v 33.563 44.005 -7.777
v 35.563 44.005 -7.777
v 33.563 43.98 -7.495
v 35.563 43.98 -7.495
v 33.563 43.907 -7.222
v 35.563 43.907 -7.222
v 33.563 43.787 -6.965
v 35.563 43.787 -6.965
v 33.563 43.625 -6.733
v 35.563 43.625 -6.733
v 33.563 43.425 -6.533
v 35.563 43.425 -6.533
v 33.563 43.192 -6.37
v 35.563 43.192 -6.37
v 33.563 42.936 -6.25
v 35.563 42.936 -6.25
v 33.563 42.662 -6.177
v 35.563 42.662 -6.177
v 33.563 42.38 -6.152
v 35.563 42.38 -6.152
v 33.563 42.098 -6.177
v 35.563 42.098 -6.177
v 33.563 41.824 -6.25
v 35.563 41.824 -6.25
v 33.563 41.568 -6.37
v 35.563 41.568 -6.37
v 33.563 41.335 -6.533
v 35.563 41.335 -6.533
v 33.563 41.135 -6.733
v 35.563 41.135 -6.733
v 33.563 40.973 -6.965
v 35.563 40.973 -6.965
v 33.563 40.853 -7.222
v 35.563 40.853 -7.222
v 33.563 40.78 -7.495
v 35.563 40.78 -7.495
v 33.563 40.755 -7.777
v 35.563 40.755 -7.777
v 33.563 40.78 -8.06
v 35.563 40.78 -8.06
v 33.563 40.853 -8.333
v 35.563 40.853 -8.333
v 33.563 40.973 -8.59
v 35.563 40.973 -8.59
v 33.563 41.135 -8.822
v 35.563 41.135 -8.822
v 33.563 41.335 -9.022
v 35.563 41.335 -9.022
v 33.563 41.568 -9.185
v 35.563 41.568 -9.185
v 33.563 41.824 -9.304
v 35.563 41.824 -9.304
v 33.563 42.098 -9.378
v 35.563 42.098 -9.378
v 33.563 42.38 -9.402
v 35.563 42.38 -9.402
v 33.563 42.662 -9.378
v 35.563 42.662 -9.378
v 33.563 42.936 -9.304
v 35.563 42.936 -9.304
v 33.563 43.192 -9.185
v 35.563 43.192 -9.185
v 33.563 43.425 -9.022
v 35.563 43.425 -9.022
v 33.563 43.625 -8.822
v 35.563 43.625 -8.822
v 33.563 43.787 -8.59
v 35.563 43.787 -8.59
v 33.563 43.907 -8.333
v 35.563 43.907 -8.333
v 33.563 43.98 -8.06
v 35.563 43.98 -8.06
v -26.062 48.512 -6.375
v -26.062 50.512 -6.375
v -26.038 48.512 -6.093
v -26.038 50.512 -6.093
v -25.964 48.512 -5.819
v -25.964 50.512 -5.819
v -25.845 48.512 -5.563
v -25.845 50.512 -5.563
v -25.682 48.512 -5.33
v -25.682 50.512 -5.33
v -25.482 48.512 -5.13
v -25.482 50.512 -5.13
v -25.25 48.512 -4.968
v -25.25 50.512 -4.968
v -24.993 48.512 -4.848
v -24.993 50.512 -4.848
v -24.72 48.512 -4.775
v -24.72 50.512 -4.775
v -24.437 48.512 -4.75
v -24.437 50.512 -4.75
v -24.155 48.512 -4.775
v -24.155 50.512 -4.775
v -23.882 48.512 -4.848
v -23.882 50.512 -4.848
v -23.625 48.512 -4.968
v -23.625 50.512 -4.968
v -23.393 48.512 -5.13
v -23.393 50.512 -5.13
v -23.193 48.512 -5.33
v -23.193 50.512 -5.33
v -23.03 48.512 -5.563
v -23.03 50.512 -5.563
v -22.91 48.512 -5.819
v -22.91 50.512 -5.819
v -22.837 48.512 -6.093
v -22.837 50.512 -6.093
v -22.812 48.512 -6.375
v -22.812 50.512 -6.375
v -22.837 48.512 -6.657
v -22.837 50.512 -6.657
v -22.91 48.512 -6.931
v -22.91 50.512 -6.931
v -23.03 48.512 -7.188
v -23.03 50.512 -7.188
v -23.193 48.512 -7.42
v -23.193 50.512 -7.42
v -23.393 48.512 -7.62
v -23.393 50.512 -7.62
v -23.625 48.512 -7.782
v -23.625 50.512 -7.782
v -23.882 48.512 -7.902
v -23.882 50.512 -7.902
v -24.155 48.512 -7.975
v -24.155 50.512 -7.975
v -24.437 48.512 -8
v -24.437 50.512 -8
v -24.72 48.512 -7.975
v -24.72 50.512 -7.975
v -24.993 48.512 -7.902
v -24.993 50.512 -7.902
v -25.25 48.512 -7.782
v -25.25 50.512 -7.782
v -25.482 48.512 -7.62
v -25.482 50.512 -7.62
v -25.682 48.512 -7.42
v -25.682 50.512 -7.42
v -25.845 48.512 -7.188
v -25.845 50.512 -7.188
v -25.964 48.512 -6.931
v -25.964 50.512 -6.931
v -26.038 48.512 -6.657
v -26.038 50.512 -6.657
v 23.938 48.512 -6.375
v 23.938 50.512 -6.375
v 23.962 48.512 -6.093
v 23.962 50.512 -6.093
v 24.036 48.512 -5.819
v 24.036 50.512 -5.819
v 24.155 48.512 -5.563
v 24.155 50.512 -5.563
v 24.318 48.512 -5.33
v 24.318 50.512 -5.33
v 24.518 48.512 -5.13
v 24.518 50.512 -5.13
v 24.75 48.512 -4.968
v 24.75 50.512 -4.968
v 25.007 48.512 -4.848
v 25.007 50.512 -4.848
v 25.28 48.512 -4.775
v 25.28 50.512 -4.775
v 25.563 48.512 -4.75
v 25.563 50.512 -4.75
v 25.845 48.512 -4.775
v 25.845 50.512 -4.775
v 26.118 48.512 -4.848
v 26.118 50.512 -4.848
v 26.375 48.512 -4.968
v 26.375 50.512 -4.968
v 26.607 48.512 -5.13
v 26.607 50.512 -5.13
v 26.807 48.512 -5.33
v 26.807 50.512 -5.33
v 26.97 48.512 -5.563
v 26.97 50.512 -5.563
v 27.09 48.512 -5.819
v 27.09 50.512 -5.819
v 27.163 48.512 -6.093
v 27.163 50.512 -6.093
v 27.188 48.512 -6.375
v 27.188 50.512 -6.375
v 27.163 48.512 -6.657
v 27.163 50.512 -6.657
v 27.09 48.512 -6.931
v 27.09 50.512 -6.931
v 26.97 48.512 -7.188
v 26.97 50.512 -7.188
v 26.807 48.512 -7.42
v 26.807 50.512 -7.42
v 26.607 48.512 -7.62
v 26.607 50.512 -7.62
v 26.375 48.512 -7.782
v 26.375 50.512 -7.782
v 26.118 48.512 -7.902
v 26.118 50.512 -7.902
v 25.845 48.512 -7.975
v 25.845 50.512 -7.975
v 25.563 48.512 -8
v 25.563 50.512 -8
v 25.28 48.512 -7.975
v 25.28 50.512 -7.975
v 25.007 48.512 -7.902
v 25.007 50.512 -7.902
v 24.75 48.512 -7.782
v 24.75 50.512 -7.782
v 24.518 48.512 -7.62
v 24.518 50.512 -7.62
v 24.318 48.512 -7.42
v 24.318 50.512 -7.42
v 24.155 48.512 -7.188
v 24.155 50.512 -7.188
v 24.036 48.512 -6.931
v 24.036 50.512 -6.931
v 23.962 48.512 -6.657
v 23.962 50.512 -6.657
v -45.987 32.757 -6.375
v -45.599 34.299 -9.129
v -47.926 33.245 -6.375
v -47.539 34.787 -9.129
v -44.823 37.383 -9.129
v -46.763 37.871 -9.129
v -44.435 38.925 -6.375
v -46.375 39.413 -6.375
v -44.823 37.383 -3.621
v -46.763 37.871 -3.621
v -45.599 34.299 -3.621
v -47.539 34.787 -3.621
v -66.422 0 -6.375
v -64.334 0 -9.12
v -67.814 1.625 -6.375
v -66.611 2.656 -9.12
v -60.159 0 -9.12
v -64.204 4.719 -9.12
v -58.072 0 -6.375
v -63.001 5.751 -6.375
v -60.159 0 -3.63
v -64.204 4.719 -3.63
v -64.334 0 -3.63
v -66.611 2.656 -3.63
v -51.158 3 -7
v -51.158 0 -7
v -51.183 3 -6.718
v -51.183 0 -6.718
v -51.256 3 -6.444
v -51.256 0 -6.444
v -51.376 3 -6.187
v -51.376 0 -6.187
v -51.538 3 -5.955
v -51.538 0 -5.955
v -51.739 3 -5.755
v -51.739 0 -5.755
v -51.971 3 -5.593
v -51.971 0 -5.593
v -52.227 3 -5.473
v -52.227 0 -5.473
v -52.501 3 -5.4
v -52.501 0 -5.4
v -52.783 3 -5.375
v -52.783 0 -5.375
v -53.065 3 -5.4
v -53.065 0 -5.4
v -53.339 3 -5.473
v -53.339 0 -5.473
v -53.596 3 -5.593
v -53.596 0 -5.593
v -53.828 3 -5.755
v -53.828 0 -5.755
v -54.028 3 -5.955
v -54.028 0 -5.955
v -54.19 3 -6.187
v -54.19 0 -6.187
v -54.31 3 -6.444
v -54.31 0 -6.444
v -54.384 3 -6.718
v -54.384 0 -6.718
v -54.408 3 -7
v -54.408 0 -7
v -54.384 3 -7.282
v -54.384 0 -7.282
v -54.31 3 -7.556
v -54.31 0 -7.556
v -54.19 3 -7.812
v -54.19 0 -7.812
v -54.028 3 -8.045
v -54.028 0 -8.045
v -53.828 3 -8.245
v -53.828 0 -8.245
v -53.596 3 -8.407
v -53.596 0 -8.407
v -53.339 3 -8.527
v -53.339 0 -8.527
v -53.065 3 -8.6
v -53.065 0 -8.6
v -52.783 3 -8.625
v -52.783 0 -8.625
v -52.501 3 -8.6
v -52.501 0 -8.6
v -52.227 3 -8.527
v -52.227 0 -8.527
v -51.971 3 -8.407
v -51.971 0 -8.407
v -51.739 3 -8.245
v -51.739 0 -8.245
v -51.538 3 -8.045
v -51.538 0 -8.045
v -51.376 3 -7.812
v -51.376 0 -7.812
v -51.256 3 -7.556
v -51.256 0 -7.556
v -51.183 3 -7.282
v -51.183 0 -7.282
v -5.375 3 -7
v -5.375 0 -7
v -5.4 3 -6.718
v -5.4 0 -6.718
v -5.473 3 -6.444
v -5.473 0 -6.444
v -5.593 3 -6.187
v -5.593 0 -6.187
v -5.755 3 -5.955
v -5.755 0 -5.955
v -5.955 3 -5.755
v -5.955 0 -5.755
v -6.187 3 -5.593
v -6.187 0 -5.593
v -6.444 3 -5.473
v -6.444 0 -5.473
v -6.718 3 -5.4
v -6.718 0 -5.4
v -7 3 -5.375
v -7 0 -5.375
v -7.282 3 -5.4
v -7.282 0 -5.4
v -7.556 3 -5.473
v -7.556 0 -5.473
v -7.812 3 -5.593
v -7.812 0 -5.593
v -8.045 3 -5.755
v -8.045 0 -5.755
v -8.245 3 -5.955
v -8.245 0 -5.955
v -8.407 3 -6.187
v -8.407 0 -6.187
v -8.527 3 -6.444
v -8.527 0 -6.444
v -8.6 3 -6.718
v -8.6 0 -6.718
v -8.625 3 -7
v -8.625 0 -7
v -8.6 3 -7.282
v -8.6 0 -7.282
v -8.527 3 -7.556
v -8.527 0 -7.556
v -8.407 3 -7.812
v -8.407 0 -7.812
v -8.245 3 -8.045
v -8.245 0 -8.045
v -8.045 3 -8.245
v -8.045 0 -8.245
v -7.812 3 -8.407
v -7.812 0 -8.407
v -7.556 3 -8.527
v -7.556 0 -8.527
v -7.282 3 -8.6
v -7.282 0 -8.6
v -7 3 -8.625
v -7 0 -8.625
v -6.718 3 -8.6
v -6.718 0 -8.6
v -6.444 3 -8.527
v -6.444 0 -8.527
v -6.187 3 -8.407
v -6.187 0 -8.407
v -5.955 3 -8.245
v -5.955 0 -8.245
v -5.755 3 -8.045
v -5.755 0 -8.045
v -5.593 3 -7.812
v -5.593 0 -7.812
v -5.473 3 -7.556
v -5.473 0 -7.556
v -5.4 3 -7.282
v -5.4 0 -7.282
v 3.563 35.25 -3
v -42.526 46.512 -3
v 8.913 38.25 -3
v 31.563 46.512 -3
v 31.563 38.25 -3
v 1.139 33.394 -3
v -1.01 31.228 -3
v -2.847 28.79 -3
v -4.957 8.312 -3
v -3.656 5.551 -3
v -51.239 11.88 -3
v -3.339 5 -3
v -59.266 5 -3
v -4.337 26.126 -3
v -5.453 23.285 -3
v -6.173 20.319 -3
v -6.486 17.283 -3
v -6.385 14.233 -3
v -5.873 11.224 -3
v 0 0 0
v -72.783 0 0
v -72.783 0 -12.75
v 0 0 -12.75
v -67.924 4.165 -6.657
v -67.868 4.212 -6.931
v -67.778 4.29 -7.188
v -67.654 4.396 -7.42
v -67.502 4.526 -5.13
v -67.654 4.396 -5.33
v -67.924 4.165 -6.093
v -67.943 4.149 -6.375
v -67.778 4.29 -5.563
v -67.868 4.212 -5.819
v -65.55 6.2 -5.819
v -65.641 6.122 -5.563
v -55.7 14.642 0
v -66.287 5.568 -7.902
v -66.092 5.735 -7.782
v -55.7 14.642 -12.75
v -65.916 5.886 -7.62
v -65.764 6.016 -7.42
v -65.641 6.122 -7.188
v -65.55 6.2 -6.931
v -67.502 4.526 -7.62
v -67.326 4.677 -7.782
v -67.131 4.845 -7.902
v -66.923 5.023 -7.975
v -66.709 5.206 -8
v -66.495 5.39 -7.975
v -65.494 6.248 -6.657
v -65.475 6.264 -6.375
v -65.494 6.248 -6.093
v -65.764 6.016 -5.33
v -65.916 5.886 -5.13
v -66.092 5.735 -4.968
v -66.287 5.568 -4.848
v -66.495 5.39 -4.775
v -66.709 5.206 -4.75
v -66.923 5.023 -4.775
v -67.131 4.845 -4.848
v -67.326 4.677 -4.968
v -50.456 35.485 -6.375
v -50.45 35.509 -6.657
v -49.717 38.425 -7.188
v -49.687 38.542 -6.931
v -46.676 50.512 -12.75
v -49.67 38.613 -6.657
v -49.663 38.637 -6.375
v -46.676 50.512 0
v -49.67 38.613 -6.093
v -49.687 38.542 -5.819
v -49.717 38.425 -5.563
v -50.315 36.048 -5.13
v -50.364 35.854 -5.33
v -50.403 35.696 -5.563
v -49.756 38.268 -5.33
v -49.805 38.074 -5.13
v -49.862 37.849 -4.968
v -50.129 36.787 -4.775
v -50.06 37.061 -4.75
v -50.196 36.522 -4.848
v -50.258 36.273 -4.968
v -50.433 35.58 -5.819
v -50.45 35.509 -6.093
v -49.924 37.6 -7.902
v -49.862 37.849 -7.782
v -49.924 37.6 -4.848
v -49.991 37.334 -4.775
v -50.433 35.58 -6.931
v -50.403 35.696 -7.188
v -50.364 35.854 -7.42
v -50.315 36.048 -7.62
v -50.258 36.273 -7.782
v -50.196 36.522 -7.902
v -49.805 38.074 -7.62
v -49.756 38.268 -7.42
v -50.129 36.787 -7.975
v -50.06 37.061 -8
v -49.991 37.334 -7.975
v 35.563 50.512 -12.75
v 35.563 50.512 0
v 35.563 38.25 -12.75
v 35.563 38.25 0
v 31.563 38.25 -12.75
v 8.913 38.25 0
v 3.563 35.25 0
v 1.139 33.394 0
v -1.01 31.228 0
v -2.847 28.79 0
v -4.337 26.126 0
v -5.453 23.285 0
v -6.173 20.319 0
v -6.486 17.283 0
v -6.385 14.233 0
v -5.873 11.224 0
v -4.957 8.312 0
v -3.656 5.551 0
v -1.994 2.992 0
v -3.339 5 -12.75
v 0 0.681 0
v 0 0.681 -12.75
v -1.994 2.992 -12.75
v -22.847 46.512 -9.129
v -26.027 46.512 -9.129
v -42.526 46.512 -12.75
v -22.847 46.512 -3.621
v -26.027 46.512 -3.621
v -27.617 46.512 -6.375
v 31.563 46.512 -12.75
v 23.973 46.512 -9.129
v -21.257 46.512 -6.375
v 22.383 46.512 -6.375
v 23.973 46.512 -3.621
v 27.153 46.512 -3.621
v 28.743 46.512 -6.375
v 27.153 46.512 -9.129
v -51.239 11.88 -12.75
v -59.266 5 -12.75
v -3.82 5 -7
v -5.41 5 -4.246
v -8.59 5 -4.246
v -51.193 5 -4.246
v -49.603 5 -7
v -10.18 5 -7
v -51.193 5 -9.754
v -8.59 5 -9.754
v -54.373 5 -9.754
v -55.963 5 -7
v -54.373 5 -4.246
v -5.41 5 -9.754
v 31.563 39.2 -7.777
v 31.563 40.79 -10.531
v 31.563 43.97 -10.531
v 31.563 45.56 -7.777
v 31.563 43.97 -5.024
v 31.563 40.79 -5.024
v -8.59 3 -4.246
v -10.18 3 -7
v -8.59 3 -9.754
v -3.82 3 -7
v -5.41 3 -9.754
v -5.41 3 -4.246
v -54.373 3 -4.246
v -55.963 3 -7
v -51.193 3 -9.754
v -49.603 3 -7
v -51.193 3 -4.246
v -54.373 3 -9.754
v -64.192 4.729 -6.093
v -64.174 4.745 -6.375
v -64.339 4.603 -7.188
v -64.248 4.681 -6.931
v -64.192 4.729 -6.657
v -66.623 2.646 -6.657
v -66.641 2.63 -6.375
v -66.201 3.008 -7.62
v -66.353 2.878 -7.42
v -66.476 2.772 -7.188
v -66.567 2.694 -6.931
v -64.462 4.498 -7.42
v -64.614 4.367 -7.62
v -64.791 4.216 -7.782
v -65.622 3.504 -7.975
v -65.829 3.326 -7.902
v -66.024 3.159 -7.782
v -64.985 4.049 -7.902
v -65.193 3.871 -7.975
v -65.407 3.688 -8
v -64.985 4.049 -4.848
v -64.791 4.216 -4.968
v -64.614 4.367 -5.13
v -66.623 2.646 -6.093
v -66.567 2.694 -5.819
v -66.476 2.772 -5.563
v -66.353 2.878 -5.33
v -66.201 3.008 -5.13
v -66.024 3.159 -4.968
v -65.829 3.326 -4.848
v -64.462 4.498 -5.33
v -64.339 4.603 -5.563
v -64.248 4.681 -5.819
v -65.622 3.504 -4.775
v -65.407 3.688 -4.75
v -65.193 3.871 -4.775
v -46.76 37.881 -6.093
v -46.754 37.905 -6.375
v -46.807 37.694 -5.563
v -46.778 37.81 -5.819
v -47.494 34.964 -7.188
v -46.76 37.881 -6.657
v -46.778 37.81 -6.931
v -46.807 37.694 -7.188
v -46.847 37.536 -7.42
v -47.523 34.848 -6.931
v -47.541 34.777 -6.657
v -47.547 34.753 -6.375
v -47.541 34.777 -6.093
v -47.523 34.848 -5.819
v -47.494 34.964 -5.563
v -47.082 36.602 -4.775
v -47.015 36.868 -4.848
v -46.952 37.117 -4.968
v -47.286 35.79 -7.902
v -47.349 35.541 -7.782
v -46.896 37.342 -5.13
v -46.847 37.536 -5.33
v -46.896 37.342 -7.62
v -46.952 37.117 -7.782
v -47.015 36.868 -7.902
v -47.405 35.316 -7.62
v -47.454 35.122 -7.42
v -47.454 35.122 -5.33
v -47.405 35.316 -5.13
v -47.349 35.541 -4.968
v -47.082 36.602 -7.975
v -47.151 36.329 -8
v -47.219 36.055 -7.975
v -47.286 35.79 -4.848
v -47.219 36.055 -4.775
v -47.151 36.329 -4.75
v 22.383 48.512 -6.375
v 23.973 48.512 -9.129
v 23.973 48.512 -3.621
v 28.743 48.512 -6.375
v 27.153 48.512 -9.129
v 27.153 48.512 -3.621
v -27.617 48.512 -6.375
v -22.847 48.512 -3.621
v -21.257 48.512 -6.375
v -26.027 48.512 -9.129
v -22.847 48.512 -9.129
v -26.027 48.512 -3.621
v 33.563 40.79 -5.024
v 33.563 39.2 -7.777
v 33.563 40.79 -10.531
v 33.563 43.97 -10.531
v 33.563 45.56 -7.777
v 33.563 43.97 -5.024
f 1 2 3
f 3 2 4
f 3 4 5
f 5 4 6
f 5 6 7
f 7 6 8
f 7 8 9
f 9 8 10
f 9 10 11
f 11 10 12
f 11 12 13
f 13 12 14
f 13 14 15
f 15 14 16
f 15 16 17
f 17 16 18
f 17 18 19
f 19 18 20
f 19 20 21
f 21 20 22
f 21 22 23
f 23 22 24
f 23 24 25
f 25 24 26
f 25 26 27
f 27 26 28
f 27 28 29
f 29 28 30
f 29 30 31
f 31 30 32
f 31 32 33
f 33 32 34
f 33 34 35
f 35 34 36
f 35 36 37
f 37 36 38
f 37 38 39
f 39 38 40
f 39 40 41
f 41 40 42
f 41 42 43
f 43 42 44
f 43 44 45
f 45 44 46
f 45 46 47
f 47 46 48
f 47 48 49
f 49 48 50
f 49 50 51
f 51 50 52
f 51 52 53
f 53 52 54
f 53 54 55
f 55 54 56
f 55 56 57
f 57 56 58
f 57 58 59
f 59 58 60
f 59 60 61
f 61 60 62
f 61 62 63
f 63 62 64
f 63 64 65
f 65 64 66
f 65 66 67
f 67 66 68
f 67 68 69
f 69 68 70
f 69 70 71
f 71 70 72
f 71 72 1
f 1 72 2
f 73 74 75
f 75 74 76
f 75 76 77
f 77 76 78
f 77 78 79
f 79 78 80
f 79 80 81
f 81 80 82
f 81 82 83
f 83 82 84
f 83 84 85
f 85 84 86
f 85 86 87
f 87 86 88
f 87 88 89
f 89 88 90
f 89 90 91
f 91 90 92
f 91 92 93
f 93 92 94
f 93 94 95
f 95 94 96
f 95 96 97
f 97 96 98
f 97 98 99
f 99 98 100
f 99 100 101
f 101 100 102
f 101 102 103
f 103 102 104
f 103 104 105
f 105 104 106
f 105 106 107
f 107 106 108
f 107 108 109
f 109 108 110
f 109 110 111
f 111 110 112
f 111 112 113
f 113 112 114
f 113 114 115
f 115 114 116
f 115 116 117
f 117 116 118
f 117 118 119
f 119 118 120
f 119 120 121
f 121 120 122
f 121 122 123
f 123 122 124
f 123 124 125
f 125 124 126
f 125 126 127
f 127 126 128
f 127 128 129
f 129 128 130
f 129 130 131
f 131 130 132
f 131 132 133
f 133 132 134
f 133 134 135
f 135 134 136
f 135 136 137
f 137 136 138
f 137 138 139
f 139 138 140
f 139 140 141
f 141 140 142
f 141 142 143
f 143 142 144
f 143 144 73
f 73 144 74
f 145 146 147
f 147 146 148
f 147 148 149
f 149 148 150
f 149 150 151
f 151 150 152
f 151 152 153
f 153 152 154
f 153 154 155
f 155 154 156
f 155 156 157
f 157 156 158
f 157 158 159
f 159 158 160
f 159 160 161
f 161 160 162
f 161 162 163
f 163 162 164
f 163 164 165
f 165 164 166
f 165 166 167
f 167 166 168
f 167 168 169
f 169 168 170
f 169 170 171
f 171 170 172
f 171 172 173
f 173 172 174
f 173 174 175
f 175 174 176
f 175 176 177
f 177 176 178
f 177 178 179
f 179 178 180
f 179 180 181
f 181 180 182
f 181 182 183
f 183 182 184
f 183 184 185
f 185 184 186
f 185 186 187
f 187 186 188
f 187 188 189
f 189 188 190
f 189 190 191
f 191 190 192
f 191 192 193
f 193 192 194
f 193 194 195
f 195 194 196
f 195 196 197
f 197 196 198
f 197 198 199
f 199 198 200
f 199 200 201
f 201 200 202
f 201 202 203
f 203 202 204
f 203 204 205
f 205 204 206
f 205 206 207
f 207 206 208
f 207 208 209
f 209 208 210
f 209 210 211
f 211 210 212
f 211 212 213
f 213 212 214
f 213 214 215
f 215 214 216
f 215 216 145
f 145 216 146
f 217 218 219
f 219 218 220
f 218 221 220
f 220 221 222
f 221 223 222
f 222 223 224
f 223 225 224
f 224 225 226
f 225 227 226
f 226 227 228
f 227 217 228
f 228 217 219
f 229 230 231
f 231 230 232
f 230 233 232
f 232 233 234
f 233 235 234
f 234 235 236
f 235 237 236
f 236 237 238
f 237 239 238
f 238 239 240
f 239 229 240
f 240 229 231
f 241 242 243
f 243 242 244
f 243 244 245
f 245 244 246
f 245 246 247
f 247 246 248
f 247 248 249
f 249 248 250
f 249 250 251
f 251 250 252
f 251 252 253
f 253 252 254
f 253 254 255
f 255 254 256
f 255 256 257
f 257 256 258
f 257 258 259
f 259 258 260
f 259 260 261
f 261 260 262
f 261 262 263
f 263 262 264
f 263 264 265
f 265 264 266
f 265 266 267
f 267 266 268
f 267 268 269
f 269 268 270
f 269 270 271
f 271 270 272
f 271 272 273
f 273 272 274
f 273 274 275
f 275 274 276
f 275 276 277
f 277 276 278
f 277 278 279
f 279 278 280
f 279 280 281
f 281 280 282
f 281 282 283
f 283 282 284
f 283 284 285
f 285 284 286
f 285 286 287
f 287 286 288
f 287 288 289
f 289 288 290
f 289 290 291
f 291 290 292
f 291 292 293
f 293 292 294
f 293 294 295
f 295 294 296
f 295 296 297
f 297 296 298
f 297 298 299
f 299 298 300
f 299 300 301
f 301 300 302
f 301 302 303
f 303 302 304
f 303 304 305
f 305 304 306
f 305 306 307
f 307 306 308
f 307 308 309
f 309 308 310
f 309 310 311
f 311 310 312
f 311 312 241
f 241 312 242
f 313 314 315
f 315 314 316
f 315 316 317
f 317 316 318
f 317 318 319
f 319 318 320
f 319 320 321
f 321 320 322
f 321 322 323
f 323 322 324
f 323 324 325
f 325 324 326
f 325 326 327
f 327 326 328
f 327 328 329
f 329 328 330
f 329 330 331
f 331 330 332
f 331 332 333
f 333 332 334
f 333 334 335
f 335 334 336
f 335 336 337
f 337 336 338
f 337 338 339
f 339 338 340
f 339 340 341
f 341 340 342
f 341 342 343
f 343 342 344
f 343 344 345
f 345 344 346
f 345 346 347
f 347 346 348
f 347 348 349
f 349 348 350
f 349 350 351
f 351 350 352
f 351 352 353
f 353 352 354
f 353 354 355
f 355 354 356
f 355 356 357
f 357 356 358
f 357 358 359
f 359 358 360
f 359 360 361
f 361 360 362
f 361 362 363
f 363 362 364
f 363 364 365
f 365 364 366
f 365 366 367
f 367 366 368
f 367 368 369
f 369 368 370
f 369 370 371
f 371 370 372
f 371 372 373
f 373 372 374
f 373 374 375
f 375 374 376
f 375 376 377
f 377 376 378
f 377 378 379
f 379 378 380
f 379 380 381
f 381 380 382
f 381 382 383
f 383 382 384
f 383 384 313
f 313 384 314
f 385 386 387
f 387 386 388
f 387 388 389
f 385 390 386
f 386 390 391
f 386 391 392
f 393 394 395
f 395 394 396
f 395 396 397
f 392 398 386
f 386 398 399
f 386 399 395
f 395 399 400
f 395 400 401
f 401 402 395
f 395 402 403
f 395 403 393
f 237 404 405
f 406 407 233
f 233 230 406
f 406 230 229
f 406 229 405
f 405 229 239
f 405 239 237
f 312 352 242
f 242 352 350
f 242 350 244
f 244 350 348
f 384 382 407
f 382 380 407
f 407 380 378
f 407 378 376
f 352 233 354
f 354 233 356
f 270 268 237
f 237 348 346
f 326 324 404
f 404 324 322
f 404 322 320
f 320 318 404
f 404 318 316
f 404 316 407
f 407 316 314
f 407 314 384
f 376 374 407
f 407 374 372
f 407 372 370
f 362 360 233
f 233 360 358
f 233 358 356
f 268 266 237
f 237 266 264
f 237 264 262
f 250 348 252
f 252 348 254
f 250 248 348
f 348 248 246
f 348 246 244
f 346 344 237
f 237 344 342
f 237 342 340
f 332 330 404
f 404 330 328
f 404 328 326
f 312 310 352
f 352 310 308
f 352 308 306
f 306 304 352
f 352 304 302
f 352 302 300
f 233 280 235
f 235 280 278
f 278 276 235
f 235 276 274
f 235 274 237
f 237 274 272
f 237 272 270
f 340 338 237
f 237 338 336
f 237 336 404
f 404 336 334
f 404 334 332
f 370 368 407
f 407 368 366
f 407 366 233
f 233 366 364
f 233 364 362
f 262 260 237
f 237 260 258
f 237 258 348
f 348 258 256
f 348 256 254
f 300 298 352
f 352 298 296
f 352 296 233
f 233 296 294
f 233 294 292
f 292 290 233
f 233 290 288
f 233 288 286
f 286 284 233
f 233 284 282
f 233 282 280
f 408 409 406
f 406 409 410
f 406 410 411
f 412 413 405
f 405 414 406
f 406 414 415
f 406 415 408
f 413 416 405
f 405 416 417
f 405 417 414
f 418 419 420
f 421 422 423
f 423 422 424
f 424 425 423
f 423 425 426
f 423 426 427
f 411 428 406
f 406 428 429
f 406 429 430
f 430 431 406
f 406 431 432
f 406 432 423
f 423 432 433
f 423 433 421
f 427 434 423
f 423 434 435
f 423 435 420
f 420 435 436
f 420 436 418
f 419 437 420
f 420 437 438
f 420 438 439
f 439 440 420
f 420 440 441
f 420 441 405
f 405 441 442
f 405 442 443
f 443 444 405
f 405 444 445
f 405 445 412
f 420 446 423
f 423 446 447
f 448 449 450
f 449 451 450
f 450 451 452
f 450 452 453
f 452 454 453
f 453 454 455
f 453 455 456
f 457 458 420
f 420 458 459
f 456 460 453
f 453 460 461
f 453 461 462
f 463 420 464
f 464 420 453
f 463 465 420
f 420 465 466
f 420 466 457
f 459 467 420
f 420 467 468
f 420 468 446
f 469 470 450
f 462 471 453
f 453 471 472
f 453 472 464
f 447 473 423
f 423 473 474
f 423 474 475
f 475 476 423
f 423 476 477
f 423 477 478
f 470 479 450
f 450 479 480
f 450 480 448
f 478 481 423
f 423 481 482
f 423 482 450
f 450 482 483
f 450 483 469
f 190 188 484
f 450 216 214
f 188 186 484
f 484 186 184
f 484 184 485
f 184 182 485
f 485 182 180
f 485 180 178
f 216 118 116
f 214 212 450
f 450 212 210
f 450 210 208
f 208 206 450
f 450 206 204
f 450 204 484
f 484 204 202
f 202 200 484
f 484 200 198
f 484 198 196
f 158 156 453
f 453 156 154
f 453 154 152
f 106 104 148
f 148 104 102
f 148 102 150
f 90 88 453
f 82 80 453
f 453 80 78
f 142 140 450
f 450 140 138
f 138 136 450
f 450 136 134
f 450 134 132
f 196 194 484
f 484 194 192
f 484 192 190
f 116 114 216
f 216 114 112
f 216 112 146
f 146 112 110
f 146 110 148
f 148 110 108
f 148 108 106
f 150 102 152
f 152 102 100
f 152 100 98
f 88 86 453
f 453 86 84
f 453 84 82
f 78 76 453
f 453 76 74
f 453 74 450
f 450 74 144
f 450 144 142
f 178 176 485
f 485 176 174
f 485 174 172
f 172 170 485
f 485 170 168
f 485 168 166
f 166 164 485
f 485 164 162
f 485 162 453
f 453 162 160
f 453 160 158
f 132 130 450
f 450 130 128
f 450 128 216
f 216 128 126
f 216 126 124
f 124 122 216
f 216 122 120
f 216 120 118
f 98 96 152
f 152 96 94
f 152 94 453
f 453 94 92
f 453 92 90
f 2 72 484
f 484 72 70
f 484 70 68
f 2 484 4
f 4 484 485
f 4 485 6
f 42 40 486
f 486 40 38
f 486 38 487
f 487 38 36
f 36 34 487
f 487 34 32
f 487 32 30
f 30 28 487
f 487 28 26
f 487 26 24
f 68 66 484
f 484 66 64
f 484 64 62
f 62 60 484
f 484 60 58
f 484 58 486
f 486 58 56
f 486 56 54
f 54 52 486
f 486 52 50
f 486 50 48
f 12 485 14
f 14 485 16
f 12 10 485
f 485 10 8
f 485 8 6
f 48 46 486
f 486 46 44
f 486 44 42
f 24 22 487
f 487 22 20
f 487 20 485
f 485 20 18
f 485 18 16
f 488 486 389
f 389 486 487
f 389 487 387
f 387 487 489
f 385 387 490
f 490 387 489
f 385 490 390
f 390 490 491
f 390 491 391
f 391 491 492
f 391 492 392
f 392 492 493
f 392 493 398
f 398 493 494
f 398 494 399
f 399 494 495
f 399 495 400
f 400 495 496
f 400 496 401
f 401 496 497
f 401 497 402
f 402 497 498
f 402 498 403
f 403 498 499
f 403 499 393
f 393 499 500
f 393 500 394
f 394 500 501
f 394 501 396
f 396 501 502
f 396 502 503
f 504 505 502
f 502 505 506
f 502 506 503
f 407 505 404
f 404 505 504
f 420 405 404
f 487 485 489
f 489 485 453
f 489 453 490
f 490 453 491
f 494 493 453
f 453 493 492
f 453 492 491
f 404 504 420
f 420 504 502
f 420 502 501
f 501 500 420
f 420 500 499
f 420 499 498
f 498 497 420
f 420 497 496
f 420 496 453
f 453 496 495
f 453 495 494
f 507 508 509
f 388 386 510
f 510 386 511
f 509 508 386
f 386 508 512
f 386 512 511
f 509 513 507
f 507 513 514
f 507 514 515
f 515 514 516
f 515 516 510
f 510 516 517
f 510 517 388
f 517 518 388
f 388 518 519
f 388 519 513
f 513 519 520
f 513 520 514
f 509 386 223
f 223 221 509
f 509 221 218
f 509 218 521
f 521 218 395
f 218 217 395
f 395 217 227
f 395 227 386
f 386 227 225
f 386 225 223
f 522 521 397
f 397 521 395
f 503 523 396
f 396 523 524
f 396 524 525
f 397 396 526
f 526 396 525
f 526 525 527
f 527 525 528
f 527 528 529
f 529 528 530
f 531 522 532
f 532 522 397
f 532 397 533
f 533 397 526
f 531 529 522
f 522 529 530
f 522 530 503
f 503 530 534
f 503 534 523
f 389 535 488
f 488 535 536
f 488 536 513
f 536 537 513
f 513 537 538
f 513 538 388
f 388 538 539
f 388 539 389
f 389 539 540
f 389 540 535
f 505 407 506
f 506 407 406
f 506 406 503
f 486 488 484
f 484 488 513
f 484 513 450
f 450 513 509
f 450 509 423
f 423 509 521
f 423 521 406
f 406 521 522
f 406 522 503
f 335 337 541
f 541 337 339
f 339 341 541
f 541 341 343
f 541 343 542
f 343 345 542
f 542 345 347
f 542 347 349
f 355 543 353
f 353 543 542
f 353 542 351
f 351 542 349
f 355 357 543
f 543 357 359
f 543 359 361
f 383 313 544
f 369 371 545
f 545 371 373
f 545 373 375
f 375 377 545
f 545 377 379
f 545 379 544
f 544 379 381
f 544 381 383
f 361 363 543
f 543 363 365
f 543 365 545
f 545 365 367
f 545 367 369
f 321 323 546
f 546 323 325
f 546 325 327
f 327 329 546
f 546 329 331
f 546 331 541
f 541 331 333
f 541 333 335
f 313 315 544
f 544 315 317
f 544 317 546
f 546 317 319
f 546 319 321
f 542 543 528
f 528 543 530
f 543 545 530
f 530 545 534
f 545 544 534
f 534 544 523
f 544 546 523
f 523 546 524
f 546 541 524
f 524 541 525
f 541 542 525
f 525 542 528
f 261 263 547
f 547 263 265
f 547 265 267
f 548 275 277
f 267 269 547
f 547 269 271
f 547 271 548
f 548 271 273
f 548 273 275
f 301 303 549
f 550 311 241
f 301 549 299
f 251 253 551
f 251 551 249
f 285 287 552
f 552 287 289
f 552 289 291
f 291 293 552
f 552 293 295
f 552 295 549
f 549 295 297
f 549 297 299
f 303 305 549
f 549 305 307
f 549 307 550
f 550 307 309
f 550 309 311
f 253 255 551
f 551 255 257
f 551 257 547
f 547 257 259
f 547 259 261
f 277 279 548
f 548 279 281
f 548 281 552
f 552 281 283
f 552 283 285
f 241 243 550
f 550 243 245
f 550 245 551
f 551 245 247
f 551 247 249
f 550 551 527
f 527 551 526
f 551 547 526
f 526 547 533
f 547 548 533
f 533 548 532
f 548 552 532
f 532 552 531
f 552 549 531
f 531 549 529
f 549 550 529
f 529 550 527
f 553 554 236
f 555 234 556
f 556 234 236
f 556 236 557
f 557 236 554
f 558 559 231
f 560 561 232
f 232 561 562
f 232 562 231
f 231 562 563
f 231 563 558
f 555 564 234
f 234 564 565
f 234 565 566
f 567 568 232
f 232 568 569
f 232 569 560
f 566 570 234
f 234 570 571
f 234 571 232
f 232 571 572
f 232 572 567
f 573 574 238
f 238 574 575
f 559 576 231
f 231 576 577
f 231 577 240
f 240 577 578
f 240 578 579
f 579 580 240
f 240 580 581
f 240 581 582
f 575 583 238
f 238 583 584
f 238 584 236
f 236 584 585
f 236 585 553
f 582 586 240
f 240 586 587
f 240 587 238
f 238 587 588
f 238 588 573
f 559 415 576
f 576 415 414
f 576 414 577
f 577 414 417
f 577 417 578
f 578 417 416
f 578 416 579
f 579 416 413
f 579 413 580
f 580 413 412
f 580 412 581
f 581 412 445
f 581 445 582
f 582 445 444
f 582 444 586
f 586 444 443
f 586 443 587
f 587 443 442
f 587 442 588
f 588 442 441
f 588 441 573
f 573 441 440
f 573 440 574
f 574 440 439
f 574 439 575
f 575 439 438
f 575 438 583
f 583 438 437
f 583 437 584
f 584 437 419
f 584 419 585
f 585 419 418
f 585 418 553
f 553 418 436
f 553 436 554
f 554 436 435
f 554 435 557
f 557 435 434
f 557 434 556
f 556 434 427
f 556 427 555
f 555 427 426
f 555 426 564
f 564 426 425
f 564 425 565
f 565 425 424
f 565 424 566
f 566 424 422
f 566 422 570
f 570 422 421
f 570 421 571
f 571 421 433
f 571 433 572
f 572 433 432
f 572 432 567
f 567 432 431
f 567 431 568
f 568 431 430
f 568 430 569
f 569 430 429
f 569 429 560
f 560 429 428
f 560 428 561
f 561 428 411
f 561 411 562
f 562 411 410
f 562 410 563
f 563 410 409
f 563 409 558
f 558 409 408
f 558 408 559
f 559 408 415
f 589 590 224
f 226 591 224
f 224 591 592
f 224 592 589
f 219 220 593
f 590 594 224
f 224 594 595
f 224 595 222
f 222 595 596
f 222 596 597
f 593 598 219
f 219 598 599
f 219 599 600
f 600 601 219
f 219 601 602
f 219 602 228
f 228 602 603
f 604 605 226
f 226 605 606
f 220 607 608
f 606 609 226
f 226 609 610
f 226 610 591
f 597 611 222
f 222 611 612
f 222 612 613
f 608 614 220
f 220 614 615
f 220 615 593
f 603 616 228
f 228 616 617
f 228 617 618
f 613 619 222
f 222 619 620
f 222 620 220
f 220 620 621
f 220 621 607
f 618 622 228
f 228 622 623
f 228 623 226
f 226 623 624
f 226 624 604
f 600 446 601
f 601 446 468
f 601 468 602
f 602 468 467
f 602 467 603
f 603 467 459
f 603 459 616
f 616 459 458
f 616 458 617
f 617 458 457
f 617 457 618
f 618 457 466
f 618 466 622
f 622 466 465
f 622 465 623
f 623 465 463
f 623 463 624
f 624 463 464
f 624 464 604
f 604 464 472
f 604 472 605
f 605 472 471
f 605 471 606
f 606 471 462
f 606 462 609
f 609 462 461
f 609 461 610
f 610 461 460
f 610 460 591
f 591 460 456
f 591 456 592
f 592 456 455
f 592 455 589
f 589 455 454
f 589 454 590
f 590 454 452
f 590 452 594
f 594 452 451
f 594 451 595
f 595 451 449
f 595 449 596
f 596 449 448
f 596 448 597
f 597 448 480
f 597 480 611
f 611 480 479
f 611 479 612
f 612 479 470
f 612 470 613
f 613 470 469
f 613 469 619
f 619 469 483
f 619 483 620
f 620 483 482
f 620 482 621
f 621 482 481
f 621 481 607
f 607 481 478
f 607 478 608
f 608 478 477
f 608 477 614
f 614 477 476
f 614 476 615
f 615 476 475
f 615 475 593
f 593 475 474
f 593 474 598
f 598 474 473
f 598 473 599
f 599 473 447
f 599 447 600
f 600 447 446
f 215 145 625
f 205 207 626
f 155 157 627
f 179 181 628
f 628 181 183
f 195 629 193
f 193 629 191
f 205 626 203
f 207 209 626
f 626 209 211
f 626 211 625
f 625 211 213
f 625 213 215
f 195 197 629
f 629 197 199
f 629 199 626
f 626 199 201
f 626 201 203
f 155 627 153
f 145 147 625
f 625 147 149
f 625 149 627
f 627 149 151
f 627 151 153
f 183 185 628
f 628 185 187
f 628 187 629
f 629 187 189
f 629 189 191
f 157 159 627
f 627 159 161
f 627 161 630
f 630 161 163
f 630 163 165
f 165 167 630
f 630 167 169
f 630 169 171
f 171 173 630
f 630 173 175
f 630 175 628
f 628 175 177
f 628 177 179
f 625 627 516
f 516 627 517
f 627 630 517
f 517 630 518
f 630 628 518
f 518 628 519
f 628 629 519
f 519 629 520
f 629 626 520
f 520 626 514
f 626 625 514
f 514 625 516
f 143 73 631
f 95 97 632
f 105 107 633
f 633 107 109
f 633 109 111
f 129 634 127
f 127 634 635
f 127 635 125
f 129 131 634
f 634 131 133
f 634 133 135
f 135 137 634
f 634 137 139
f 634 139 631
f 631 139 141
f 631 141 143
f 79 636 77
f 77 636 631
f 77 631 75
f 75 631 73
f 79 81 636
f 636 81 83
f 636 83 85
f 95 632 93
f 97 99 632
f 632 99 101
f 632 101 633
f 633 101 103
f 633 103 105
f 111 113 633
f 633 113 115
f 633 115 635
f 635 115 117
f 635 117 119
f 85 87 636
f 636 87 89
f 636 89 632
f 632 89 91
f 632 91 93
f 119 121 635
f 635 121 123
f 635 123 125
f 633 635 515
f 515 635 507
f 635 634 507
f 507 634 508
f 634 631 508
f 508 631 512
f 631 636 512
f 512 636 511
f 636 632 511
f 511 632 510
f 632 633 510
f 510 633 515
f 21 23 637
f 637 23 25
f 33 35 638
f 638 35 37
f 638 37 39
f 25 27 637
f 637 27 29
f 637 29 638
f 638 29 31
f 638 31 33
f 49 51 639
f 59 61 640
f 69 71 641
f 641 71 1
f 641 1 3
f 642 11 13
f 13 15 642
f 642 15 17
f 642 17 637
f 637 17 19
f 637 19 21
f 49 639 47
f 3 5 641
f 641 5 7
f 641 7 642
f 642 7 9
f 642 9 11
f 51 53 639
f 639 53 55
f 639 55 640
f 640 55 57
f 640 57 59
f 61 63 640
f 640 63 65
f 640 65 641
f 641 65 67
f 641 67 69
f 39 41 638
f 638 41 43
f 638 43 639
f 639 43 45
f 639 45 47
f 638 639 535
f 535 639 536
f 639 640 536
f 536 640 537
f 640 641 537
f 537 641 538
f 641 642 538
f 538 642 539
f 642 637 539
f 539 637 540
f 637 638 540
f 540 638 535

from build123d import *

# Parameters (mm, degrees)
SALIENTE_EXTRUIR1_DEPTH = 3
SALIENTE_EXTRUIR2_DEPTH = 9.75
CROQUIS4_R              = 1.625
CORTAR_EXTRUIR1_DEPTH   = 5
CORTAR_EXTRUIR2_DEPTH   = 2
CROQUIS6_R              = 1.625
CORTAR_EXTRUIR3_DEPTH   = 9
CORTAR_EXTRUIR4_DEPTH   = 10
CROQUIS10_R             = 1.625
SALIENTE_EXTRUIR3_DEPTH = 2
CORTAR_EXTRUIR5_DEPTH   = 5
CROQUIS14_R             = 1.625
SALIENTE_EXTRUIR4_DEPTH = 3
CROQUIS15_R             = 1.625
CORTAR_EXTRUIR6_DEPTH   = 4
CORTAR_EXTRUIR7_DEPTH   = 2
CROQUIS17_R             = 1.625
CORTAR_EXTRUIR9_DEPTH   = 4
CORTAR_EXTRUIR10_DEPTH  = 2


with BuildPart() as part:
    # Croquis1 → Saliente-Extruir1 (new body)
    with BuildSketch(Plane.XY):
        with BuildLine():
            Line((-46.67593732, 50.511923567), (-55.699999998, 14.642073221))
            Line((-55.699999998, 14.642073221), (-72.78319995, 0))
            Line((-72.78319995, 0), (0, 0))
            Line((0, 0), (0, 0.68070798))
            ThreePointArc((0, 0.68070798), (-6.381456753, 18.806597842), (3.562657036, 35.25))
            Line((3.562657036, 35.25), (8.913300435, 38.25))
            Line((8.913300435, 38.25), (35.562657036, 38.25))
            Line((35.562657036, 38.25), (35.562657036, 50.511923567))
            Line((35.562657036, 50.511923567), (-46.67593732, 50.511923567))
        make_face()
    extrude(amount=-SALIENTE_EXTRUIR1_DEPTH)

    # Croquis2 → Saliente-Extruir2 (add)
    with BuildSketch(Plane(origin=(0, 0, -3), x_dir=(-1, 0, 0), z_dir=(0, 0, -1))):
        with BuildLine():
            Line((42.526447804, 46.511923567), (51.238983488, 11.880365447))
            Line((51.238983488, 11.880365447), (59.266443595, 5))
            Line((59.266443595, 5), (3.339079606, 5))
            ThreePointArc((3.339079606, 5), (1.801031086, 2.738703104), (0, 0.68070798))
            Line((0, 0.68070798), (0, 0))
            Line((0, 0), (72.78319995, 0))
            Line((72.78319995, 0), (55.699999998, 14.642073221))
            Line((55.699999998, 14.642073221), (46.67593732, 50.511923567))
            Line((46.67593732, 50.511923567), (-35.562657036, 50.511923567))
            Line((-35.562657036, 50.511923567), (-35.562657036, 38.25))
            Line((-35.562657036, 38.25), (-31.562657036, 38.25))
            Line((-31.562657036, 38.25), (-31.562657036, 46.511923567))
            Line((-31.562657036, 46.511923567), (42.526447804, 46.511923567))
        make_face()
    extrude(amount=SALIENTE_EXTRUIR2_DEPTH)

    # Croquis4 → Cortar-Extruir1 (cut)
    with BuildSketch(Plane.XZ):
        with Locations((-6.999999998, -7)):
            Circle(CROQUIS4_R)
        with Locations((-52.78319995, -7)):
            Circle(CROQUIS4_R)
    extrude(amount=-CORTAR_EXTRUIR1_DEPTH, mode=Mode.SUBTRACT)

    # Croquis5 → Cortar-Extruir2 (cut)
    with BuildSketch(Plane(origin=(0, 5, 0), x_dir=(1, 0, 0), z_dir=(0, 1, 0))):
        Polygon((-10.179999998, 7), (-8.589999998, 4.246039216), (-5.409999998, 4.246039216), (-3.819999998, 7), (-5.409999998, 9.753960784), (-8.589999998, 9.753960784), align=None)
        Polygon((-49.60319995, 7), (-51.19319995, 9.753960784), (-54.37319995, 9.753960784), (-55.96319995, 7), (-54.37319995, 4.246039216), (-51.19319995, 4.246039216), align=None)
    extrude(amount=-CORTAR_EXTRUIR2_DEPTH, mode=Mode.SUBTRACT)

    # Croquis6 → Cortar-Extruir3 (cut)
    with BuildSketch(Plane(origin=(-30.824200619, 35.963211942, 0), x_dir=(0.759271307, 0.650774217, 0), z_dir=(-0.650774217, 0.759271307, 0))):
        with Locations((-47.262195378, 6.375)):
            Circle(CROQUIS6_R)
    extrude(amount=-CORTAR_EXTRUIR3_DEPTH, mode=Mode.SUBTRACT)

    # Croquis9 → Cortar-Extruir4 (cut)
    with BuildSketch(Plane(origin=(-30.824200619, 35.963211942, 0), x_dir=(0.759271307, 0.650774217, 0), z_dir=(-0.650774217, 0.759271307, 0))):
        Polygon((-50.432195378, 6.375), (-48.847195378, 3.62969947), (-45.677195378, 3.62969947), (-44.092195378, 6.375), (-45.677195378, 9.12030053), (-48.847195378, 9.12030053), align=None)
    extrude(amount=-CORTAR_EXTRUIR4_DEPTH, mode=Mode.SUBTRACT)

    # Croquis10 → Saliente-Extruir3 (add)
    with BuildSketch(Plane(origin=(-30.824200619, 35.963211942, 0), x_dir=(0.759271307, 0.650774217, 0), z_dir=(-0.650774217, 0.759271307, 0))):
        Polygon((-50.432195378, 6.375), (-48.847195378, 3.62969947), (-45.677195378, 3.62969947), (-44.092195378, 6.375), (-45.677195378, 9.12030053), (-48.847195378, 9.12030053), align=None)
        with Locations((-47.262195378, 6.375)):
            Circle(CROQUIS10_R, mode=Mode.SUBTRACT)
    extrude(amount=-SALIENTE_EXTRUIR3_DEPTH)

    # Croquis13 → Cortar-Extruir5 (cut)
    with BuildSketch(Plane(origin=(-55.848866467, 14.050342186, 0), x_dir=(0, 0, 1), z_dir=(-0.969781373, 0.24397559, 0))):
        Polygon((-6.375, 20.547396855), (-3.621039216, 22.137396855), (-3.621039216, 25.317396855), (-6.375, 26.907396855), (-9.128960784, 25.317396855), (-9.128960784, 22.137396855), align=None)
    extrude(amount=-CORTAR_EXTRUIR5_DEPTH, mode=Mode.SUBTRACT)

    # Croquis14 → Saliente-Extruir4 (add)
    with BuildSketch(Plane(origin=(-55.848866467, 14.050342186, 0), x_dir=(0, 0, 1), z_dir=(-0.969781373, 0.24397559, 0))):
        Polygon((-6.375, 26.907396855), (-9.128960784, 25.317396855), (-9.128960784, 22.137396855), (-6.375, 20.547396855), (-3.621039216, 22.137396855), (-3.621039216, 25.317396855), align=None)
        with Locations((-6.375, 23.727396855)):
            Circle(CROQUIS14_R, mode=Mode.SUBTRACT)
    extrude(amount=-SALIENTE_EXTRUIR4_DEPTH)

    # Croquis15 → Cortar-Extruir6 (cut)
    with BuildSketch(Plane(origin=(0, 50.511923567, 0), x_dir=(1, 0, 0), z_dir=(0, 1, 0))):
        with Locations((25.562657036, 6.375)):
            Circle(CROQUIS15_R)
        with Locations((-24.437342964, 6.375)):
            Circle(CROQUIS15_R)
    extrude(amount=-CORTAR_EXTRUIR6_DEPTH, mode=Mode.SUBTRACT)

    # Croquis16 → Cortar-Extruir7 (cut)
    with BuildSketch(Plane.XZ.offset(-46.511923567)):
        Polygon((22.382657036, -6.375), (23.972657036, -9.128960784), (27.152657036, -9.128960784), (28.742657036, -6.375), (27.152657036, -3.621039216), (23.972657036, -3.621039216), align=None)
        Polygon((-21.257342964, -6.375), (-22.847342964, -3.621039216), (-26.027342964, -3.621039216), (-27.617342964, -6.375), (-26.027342964, -9.128960784), (-22.847342964, -9.128960784), align=None)
    extrude(amount=-CORTAR_EXTRUIR7_DEPTH, mode=Mode.SUBTRACT)

    # Croquis17 → Cortar-Extruir9 (cut)
    with BuildSketch(Plane(origin=(35.562657036, 0, 0), x_dir=(0, 0, -1), z_dir=(1, 0, 0))):
        with Locations((7.777494034, 42.38)):
            Circle(CROQUIS17_R)
    extrude(amount=-CORTAR_EXTRUIR9_DEPTH, mode=Mode.SUBTRACT)

    # Croquis18 → Cortar-Extruir10 (cut)
    with BuildSketch(Plane.ZY.offset(-31.562657036)):
        Polygon((-7.777494034, 39.2), (-5.02353325, 40.79), (-5.02353325, 43.97), (-7.777494034, 45.56), (-10.531454818, 43.97), (-10.531454818, 40.79), align=None)
    extrude(amount=-CORTAR_EXTRUIR10_DEPTH, mode=Mode.SUBTRACT)


solid = part.part
